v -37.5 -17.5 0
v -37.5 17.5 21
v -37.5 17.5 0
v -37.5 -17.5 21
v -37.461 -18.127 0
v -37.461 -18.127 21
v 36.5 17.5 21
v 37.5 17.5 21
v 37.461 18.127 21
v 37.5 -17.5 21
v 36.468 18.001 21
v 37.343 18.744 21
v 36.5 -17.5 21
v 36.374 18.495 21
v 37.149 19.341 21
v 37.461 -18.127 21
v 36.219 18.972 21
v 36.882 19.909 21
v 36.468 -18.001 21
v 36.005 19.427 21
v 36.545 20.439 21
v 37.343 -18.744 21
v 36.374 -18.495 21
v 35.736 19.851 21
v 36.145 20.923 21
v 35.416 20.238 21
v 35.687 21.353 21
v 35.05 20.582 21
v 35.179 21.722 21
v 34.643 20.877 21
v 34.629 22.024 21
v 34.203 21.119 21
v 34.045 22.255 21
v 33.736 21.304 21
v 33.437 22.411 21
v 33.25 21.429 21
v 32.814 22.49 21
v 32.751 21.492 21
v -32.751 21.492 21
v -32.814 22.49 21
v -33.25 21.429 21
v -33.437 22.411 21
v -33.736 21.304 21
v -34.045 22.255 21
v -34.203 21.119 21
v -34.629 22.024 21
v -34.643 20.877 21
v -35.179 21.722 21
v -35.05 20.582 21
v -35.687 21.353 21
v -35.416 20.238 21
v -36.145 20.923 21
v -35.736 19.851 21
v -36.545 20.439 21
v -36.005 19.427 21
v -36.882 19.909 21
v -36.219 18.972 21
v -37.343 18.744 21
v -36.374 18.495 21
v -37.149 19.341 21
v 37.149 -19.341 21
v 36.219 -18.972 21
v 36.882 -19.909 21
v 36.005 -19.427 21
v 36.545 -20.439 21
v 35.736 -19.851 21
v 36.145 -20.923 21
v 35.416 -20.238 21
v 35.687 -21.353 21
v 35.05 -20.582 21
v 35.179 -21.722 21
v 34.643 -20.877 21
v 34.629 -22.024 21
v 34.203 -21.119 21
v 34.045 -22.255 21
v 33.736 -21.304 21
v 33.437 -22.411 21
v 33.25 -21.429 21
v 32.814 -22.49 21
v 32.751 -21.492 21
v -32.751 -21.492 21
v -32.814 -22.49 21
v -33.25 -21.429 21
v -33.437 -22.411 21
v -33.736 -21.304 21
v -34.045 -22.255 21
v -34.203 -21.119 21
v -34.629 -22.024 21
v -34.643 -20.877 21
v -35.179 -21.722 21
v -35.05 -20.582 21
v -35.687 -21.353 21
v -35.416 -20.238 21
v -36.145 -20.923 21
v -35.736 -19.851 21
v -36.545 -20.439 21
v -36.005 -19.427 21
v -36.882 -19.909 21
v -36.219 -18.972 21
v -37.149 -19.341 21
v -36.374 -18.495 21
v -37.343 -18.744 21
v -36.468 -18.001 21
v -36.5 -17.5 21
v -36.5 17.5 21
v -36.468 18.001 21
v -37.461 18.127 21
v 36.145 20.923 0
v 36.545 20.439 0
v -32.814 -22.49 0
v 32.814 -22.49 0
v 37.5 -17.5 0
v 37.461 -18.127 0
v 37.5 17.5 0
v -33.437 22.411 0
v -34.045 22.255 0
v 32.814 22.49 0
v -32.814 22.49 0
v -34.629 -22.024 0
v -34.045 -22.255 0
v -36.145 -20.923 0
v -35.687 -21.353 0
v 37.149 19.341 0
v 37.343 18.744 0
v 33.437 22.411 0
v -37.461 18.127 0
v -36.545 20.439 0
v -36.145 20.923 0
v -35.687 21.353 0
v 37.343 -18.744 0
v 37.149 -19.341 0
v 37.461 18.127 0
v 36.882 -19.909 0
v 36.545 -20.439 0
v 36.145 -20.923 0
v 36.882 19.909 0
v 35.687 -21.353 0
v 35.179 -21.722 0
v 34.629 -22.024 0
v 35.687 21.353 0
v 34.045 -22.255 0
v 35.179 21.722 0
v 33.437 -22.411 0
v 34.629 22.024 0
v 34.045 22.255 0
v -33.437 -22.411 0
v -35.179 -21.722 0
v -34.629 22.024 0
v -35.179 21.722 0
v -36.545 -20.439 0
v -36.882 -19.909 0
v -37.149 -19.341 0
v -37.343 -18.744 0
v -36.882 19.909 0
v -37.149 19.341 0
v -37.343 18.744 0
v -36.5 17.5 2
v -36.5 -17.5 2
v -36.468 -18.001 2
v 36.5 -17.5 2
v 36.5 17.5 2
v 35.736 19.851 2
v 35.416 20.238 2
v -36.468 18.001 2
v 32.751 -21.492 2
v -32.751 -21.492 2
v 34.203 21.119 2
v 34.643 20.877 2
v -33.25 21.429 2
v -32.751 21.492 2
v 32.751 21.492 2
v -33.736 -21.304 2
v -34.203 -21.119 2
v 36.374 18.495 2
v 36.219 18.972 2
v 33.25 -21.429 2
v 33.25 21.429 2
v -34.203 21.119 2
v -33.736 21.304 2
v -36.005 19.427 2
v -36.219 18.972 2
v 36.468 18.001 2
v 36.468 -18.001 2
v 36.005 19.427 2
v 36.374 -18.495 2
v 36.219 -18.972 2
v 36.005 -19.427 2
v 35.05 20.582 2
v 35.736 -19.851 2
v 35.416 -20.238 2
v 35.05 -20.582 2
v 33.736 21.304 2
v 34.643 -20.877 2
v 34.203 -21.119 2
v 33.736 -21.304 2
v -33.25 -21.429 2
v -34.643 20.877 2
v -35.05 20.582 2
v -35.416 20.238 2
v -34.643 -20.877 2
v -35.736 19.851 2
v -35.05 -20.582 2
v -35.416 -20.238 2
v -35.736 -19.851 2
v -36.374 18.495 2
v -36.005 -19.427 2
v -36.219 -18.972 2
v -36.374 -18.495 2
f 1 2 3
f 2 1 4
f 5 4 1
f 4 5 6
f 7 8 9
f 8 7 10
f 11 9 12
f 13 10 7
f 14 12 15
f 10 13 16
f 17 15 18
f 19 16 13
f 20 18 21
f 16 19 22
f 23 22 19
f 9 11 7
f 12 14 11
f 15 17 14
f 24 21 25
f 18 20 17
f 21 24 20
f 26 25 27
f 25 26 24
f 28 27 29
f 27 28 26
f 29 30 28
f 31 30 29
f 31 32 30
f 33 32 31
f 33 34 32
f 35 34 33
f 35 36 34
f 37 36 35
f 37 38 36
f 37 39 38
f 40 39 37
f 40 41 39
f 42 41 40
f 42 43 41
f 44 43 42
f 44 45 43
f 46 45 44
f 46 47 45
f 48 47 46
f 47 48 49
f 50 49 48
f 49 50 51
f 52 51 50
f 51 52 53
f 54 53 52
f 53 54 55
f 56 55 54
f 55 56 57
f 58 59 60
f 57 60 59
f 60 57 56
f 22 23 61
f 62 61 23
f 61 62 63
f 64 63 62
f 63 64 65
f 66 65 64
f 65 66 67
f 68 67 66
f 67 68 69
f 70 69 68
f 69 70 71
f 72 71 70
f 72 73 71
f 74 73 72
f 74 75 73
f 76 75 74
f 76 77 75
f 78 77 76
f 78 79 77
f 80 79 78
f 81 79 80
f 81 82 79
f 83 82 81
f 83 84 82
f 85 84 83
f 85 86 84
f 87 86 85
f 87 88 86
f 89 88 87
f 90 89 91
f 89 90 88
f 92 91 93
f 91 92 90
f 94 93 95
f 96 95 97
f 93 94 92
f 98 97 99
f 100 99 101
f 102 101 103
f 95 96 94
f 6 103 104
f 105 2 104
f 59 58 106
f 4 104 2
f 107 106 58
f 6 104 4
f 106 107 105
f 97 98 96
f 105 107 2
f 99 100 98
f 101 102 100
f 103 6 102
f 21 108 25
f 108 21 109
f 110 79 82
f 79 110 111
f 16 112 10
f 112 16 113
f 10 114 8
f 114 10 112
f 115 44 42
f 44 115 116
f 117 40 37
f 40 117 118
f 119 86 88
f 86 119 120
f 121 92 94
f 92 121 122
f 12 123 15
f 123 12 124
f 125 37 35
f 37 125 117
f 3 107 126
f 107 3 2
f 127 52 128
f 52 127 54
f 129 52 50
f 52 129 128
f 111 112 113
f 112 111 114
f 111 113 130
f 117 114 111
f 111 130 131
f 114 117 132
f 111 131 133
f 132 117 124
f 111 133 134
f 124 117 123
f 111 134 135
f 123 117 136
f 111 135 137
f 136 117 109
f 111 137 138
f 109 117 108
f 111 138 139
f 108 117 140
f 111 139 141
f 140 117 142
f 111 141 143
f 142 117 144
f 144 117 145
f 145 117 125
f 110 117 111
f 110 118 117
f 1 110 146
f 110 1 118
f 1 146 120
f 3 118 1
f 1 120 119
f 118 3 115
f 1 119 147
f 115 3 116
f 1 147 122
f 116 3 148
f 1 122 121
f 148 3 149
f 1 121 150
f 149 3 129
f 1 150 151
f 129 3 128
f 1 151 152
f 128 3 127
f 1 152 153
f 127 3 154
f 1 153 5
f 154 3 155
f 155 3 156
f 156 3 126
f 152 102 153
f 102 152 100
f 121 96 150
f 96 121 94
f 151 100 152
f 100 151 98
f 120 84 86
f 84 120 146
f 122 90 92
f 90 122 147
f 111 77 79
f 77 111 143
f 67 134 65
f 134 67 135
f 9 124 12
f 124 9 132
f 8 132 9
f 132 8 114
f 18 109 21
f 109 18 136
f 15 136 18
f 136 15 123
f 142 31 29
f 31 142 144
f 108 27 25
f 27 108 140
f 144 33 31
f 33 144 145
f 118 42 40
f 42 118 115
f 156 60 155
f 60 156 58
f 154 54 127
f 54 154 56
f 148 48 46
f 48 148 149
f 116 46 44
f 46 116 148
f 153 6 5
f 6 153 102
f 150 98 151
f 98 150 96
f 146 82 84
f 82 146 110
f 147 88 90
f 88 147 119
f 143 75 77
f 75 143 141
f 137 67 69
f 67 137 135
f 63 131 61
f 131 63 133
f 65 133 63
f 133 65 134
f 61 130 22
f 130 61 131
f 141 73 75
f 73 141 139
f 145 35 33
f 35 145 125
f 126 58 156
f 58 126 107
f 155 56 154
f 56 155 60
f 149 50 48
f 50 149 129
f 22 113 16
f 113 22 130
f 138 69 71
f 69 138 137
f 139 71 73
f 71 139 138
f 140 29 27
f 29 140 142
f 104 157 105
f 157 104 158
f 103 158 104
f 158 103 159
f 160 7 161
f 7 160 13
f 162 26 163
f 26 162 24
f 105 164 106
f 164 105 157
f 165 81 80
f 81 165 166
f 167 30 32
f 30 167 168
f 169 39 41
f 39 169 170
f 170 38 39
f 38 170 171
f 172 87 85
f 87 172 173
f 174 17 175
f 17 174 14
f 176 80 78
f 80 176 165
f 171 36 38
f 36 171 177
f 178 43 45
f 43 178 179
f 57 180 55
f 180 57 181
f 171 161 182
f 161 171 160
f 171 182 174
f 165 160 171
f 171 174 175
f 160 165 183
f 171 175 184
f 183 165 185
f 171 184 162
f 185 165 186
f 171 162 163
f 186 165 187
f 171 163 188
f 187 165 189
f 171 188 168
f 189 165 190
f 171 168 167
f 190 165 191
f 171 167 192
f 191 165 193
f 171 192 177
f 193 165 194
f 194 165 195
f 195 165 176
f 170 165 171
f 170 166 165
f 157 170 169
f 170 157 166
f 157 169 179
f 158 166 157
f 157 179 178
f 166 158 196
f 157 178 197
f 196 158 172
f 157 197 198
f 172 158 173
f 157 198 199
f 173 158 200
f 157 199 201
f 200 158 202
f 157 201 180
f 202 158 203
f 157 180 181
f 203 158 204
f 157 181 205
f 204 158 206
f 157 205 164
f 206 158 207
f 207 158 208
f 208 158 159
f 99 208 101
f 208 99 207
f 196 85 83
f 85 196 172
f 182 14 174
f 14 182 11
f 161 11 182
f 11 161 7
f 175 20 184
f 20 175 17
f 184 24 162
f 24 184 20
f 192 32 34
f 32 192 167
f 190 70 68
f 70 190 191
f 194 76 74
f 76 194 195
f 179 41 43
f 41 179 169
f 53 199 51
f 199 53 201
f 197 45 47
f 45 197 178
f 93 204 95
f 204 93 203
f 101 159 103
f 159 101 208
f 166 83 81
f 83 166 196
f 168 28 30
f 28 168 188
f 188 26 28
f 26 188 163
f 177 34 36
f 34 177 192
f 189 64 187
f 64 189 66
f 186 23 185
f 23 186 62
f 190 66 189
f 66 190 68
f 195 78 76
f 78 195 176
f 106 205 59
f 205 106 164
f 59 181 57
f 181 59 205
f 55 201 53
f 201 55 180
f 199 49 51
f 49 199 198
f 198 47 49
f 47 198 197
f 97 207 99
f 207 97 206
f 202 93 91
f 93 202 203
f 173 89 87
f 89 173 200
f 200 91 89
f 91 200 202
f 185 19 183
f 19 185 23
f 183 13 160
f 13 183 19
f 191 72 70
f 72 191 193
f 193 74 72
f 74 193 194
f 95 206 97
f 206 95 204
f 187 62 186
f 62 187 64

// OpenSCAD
$fn = 50;


difference() {
	union() {
		hull() {
			translate(v = [-32.5000000000, 17.5000000000, 0]) {
				cylinder(h = 21, r = 5);
			}
			translate(v = [32.5000000000, 17.5000000000, 0]) {
				cylinder(h = 21, r = 5);
			}
			translate(v = [-32.5000000000, -17.5000000000, 0]) {
				cylinder(h = 21, r = 5);
			}
			translate(v = [32.5000000000, -17.5000000000, 0]) {
				cylinder(h = 21, r = 5);
			}
		}
	}
	union() {
		translate(v = [0, 0, 2]) {
			hull() {
				translate(v = [-32.5000000000, 17.5000000000, 0]) {
					cylinder(h = 19, r = 4);
				}
				translate(v = [32.5000000000, 17.5000000000, 0]) {
					cylinder(h = 19, r = 4);
				}
				translate(v = [-32.5000000000, -17.5000000000, 0]) {
					cylinder(h = 19, r = 4);
				}
				translate(v = [32.5000000000, -17.5000000000, 0]) {
					cylinder(h = 19, r = 4);
				}
			}
		}
	}
}
